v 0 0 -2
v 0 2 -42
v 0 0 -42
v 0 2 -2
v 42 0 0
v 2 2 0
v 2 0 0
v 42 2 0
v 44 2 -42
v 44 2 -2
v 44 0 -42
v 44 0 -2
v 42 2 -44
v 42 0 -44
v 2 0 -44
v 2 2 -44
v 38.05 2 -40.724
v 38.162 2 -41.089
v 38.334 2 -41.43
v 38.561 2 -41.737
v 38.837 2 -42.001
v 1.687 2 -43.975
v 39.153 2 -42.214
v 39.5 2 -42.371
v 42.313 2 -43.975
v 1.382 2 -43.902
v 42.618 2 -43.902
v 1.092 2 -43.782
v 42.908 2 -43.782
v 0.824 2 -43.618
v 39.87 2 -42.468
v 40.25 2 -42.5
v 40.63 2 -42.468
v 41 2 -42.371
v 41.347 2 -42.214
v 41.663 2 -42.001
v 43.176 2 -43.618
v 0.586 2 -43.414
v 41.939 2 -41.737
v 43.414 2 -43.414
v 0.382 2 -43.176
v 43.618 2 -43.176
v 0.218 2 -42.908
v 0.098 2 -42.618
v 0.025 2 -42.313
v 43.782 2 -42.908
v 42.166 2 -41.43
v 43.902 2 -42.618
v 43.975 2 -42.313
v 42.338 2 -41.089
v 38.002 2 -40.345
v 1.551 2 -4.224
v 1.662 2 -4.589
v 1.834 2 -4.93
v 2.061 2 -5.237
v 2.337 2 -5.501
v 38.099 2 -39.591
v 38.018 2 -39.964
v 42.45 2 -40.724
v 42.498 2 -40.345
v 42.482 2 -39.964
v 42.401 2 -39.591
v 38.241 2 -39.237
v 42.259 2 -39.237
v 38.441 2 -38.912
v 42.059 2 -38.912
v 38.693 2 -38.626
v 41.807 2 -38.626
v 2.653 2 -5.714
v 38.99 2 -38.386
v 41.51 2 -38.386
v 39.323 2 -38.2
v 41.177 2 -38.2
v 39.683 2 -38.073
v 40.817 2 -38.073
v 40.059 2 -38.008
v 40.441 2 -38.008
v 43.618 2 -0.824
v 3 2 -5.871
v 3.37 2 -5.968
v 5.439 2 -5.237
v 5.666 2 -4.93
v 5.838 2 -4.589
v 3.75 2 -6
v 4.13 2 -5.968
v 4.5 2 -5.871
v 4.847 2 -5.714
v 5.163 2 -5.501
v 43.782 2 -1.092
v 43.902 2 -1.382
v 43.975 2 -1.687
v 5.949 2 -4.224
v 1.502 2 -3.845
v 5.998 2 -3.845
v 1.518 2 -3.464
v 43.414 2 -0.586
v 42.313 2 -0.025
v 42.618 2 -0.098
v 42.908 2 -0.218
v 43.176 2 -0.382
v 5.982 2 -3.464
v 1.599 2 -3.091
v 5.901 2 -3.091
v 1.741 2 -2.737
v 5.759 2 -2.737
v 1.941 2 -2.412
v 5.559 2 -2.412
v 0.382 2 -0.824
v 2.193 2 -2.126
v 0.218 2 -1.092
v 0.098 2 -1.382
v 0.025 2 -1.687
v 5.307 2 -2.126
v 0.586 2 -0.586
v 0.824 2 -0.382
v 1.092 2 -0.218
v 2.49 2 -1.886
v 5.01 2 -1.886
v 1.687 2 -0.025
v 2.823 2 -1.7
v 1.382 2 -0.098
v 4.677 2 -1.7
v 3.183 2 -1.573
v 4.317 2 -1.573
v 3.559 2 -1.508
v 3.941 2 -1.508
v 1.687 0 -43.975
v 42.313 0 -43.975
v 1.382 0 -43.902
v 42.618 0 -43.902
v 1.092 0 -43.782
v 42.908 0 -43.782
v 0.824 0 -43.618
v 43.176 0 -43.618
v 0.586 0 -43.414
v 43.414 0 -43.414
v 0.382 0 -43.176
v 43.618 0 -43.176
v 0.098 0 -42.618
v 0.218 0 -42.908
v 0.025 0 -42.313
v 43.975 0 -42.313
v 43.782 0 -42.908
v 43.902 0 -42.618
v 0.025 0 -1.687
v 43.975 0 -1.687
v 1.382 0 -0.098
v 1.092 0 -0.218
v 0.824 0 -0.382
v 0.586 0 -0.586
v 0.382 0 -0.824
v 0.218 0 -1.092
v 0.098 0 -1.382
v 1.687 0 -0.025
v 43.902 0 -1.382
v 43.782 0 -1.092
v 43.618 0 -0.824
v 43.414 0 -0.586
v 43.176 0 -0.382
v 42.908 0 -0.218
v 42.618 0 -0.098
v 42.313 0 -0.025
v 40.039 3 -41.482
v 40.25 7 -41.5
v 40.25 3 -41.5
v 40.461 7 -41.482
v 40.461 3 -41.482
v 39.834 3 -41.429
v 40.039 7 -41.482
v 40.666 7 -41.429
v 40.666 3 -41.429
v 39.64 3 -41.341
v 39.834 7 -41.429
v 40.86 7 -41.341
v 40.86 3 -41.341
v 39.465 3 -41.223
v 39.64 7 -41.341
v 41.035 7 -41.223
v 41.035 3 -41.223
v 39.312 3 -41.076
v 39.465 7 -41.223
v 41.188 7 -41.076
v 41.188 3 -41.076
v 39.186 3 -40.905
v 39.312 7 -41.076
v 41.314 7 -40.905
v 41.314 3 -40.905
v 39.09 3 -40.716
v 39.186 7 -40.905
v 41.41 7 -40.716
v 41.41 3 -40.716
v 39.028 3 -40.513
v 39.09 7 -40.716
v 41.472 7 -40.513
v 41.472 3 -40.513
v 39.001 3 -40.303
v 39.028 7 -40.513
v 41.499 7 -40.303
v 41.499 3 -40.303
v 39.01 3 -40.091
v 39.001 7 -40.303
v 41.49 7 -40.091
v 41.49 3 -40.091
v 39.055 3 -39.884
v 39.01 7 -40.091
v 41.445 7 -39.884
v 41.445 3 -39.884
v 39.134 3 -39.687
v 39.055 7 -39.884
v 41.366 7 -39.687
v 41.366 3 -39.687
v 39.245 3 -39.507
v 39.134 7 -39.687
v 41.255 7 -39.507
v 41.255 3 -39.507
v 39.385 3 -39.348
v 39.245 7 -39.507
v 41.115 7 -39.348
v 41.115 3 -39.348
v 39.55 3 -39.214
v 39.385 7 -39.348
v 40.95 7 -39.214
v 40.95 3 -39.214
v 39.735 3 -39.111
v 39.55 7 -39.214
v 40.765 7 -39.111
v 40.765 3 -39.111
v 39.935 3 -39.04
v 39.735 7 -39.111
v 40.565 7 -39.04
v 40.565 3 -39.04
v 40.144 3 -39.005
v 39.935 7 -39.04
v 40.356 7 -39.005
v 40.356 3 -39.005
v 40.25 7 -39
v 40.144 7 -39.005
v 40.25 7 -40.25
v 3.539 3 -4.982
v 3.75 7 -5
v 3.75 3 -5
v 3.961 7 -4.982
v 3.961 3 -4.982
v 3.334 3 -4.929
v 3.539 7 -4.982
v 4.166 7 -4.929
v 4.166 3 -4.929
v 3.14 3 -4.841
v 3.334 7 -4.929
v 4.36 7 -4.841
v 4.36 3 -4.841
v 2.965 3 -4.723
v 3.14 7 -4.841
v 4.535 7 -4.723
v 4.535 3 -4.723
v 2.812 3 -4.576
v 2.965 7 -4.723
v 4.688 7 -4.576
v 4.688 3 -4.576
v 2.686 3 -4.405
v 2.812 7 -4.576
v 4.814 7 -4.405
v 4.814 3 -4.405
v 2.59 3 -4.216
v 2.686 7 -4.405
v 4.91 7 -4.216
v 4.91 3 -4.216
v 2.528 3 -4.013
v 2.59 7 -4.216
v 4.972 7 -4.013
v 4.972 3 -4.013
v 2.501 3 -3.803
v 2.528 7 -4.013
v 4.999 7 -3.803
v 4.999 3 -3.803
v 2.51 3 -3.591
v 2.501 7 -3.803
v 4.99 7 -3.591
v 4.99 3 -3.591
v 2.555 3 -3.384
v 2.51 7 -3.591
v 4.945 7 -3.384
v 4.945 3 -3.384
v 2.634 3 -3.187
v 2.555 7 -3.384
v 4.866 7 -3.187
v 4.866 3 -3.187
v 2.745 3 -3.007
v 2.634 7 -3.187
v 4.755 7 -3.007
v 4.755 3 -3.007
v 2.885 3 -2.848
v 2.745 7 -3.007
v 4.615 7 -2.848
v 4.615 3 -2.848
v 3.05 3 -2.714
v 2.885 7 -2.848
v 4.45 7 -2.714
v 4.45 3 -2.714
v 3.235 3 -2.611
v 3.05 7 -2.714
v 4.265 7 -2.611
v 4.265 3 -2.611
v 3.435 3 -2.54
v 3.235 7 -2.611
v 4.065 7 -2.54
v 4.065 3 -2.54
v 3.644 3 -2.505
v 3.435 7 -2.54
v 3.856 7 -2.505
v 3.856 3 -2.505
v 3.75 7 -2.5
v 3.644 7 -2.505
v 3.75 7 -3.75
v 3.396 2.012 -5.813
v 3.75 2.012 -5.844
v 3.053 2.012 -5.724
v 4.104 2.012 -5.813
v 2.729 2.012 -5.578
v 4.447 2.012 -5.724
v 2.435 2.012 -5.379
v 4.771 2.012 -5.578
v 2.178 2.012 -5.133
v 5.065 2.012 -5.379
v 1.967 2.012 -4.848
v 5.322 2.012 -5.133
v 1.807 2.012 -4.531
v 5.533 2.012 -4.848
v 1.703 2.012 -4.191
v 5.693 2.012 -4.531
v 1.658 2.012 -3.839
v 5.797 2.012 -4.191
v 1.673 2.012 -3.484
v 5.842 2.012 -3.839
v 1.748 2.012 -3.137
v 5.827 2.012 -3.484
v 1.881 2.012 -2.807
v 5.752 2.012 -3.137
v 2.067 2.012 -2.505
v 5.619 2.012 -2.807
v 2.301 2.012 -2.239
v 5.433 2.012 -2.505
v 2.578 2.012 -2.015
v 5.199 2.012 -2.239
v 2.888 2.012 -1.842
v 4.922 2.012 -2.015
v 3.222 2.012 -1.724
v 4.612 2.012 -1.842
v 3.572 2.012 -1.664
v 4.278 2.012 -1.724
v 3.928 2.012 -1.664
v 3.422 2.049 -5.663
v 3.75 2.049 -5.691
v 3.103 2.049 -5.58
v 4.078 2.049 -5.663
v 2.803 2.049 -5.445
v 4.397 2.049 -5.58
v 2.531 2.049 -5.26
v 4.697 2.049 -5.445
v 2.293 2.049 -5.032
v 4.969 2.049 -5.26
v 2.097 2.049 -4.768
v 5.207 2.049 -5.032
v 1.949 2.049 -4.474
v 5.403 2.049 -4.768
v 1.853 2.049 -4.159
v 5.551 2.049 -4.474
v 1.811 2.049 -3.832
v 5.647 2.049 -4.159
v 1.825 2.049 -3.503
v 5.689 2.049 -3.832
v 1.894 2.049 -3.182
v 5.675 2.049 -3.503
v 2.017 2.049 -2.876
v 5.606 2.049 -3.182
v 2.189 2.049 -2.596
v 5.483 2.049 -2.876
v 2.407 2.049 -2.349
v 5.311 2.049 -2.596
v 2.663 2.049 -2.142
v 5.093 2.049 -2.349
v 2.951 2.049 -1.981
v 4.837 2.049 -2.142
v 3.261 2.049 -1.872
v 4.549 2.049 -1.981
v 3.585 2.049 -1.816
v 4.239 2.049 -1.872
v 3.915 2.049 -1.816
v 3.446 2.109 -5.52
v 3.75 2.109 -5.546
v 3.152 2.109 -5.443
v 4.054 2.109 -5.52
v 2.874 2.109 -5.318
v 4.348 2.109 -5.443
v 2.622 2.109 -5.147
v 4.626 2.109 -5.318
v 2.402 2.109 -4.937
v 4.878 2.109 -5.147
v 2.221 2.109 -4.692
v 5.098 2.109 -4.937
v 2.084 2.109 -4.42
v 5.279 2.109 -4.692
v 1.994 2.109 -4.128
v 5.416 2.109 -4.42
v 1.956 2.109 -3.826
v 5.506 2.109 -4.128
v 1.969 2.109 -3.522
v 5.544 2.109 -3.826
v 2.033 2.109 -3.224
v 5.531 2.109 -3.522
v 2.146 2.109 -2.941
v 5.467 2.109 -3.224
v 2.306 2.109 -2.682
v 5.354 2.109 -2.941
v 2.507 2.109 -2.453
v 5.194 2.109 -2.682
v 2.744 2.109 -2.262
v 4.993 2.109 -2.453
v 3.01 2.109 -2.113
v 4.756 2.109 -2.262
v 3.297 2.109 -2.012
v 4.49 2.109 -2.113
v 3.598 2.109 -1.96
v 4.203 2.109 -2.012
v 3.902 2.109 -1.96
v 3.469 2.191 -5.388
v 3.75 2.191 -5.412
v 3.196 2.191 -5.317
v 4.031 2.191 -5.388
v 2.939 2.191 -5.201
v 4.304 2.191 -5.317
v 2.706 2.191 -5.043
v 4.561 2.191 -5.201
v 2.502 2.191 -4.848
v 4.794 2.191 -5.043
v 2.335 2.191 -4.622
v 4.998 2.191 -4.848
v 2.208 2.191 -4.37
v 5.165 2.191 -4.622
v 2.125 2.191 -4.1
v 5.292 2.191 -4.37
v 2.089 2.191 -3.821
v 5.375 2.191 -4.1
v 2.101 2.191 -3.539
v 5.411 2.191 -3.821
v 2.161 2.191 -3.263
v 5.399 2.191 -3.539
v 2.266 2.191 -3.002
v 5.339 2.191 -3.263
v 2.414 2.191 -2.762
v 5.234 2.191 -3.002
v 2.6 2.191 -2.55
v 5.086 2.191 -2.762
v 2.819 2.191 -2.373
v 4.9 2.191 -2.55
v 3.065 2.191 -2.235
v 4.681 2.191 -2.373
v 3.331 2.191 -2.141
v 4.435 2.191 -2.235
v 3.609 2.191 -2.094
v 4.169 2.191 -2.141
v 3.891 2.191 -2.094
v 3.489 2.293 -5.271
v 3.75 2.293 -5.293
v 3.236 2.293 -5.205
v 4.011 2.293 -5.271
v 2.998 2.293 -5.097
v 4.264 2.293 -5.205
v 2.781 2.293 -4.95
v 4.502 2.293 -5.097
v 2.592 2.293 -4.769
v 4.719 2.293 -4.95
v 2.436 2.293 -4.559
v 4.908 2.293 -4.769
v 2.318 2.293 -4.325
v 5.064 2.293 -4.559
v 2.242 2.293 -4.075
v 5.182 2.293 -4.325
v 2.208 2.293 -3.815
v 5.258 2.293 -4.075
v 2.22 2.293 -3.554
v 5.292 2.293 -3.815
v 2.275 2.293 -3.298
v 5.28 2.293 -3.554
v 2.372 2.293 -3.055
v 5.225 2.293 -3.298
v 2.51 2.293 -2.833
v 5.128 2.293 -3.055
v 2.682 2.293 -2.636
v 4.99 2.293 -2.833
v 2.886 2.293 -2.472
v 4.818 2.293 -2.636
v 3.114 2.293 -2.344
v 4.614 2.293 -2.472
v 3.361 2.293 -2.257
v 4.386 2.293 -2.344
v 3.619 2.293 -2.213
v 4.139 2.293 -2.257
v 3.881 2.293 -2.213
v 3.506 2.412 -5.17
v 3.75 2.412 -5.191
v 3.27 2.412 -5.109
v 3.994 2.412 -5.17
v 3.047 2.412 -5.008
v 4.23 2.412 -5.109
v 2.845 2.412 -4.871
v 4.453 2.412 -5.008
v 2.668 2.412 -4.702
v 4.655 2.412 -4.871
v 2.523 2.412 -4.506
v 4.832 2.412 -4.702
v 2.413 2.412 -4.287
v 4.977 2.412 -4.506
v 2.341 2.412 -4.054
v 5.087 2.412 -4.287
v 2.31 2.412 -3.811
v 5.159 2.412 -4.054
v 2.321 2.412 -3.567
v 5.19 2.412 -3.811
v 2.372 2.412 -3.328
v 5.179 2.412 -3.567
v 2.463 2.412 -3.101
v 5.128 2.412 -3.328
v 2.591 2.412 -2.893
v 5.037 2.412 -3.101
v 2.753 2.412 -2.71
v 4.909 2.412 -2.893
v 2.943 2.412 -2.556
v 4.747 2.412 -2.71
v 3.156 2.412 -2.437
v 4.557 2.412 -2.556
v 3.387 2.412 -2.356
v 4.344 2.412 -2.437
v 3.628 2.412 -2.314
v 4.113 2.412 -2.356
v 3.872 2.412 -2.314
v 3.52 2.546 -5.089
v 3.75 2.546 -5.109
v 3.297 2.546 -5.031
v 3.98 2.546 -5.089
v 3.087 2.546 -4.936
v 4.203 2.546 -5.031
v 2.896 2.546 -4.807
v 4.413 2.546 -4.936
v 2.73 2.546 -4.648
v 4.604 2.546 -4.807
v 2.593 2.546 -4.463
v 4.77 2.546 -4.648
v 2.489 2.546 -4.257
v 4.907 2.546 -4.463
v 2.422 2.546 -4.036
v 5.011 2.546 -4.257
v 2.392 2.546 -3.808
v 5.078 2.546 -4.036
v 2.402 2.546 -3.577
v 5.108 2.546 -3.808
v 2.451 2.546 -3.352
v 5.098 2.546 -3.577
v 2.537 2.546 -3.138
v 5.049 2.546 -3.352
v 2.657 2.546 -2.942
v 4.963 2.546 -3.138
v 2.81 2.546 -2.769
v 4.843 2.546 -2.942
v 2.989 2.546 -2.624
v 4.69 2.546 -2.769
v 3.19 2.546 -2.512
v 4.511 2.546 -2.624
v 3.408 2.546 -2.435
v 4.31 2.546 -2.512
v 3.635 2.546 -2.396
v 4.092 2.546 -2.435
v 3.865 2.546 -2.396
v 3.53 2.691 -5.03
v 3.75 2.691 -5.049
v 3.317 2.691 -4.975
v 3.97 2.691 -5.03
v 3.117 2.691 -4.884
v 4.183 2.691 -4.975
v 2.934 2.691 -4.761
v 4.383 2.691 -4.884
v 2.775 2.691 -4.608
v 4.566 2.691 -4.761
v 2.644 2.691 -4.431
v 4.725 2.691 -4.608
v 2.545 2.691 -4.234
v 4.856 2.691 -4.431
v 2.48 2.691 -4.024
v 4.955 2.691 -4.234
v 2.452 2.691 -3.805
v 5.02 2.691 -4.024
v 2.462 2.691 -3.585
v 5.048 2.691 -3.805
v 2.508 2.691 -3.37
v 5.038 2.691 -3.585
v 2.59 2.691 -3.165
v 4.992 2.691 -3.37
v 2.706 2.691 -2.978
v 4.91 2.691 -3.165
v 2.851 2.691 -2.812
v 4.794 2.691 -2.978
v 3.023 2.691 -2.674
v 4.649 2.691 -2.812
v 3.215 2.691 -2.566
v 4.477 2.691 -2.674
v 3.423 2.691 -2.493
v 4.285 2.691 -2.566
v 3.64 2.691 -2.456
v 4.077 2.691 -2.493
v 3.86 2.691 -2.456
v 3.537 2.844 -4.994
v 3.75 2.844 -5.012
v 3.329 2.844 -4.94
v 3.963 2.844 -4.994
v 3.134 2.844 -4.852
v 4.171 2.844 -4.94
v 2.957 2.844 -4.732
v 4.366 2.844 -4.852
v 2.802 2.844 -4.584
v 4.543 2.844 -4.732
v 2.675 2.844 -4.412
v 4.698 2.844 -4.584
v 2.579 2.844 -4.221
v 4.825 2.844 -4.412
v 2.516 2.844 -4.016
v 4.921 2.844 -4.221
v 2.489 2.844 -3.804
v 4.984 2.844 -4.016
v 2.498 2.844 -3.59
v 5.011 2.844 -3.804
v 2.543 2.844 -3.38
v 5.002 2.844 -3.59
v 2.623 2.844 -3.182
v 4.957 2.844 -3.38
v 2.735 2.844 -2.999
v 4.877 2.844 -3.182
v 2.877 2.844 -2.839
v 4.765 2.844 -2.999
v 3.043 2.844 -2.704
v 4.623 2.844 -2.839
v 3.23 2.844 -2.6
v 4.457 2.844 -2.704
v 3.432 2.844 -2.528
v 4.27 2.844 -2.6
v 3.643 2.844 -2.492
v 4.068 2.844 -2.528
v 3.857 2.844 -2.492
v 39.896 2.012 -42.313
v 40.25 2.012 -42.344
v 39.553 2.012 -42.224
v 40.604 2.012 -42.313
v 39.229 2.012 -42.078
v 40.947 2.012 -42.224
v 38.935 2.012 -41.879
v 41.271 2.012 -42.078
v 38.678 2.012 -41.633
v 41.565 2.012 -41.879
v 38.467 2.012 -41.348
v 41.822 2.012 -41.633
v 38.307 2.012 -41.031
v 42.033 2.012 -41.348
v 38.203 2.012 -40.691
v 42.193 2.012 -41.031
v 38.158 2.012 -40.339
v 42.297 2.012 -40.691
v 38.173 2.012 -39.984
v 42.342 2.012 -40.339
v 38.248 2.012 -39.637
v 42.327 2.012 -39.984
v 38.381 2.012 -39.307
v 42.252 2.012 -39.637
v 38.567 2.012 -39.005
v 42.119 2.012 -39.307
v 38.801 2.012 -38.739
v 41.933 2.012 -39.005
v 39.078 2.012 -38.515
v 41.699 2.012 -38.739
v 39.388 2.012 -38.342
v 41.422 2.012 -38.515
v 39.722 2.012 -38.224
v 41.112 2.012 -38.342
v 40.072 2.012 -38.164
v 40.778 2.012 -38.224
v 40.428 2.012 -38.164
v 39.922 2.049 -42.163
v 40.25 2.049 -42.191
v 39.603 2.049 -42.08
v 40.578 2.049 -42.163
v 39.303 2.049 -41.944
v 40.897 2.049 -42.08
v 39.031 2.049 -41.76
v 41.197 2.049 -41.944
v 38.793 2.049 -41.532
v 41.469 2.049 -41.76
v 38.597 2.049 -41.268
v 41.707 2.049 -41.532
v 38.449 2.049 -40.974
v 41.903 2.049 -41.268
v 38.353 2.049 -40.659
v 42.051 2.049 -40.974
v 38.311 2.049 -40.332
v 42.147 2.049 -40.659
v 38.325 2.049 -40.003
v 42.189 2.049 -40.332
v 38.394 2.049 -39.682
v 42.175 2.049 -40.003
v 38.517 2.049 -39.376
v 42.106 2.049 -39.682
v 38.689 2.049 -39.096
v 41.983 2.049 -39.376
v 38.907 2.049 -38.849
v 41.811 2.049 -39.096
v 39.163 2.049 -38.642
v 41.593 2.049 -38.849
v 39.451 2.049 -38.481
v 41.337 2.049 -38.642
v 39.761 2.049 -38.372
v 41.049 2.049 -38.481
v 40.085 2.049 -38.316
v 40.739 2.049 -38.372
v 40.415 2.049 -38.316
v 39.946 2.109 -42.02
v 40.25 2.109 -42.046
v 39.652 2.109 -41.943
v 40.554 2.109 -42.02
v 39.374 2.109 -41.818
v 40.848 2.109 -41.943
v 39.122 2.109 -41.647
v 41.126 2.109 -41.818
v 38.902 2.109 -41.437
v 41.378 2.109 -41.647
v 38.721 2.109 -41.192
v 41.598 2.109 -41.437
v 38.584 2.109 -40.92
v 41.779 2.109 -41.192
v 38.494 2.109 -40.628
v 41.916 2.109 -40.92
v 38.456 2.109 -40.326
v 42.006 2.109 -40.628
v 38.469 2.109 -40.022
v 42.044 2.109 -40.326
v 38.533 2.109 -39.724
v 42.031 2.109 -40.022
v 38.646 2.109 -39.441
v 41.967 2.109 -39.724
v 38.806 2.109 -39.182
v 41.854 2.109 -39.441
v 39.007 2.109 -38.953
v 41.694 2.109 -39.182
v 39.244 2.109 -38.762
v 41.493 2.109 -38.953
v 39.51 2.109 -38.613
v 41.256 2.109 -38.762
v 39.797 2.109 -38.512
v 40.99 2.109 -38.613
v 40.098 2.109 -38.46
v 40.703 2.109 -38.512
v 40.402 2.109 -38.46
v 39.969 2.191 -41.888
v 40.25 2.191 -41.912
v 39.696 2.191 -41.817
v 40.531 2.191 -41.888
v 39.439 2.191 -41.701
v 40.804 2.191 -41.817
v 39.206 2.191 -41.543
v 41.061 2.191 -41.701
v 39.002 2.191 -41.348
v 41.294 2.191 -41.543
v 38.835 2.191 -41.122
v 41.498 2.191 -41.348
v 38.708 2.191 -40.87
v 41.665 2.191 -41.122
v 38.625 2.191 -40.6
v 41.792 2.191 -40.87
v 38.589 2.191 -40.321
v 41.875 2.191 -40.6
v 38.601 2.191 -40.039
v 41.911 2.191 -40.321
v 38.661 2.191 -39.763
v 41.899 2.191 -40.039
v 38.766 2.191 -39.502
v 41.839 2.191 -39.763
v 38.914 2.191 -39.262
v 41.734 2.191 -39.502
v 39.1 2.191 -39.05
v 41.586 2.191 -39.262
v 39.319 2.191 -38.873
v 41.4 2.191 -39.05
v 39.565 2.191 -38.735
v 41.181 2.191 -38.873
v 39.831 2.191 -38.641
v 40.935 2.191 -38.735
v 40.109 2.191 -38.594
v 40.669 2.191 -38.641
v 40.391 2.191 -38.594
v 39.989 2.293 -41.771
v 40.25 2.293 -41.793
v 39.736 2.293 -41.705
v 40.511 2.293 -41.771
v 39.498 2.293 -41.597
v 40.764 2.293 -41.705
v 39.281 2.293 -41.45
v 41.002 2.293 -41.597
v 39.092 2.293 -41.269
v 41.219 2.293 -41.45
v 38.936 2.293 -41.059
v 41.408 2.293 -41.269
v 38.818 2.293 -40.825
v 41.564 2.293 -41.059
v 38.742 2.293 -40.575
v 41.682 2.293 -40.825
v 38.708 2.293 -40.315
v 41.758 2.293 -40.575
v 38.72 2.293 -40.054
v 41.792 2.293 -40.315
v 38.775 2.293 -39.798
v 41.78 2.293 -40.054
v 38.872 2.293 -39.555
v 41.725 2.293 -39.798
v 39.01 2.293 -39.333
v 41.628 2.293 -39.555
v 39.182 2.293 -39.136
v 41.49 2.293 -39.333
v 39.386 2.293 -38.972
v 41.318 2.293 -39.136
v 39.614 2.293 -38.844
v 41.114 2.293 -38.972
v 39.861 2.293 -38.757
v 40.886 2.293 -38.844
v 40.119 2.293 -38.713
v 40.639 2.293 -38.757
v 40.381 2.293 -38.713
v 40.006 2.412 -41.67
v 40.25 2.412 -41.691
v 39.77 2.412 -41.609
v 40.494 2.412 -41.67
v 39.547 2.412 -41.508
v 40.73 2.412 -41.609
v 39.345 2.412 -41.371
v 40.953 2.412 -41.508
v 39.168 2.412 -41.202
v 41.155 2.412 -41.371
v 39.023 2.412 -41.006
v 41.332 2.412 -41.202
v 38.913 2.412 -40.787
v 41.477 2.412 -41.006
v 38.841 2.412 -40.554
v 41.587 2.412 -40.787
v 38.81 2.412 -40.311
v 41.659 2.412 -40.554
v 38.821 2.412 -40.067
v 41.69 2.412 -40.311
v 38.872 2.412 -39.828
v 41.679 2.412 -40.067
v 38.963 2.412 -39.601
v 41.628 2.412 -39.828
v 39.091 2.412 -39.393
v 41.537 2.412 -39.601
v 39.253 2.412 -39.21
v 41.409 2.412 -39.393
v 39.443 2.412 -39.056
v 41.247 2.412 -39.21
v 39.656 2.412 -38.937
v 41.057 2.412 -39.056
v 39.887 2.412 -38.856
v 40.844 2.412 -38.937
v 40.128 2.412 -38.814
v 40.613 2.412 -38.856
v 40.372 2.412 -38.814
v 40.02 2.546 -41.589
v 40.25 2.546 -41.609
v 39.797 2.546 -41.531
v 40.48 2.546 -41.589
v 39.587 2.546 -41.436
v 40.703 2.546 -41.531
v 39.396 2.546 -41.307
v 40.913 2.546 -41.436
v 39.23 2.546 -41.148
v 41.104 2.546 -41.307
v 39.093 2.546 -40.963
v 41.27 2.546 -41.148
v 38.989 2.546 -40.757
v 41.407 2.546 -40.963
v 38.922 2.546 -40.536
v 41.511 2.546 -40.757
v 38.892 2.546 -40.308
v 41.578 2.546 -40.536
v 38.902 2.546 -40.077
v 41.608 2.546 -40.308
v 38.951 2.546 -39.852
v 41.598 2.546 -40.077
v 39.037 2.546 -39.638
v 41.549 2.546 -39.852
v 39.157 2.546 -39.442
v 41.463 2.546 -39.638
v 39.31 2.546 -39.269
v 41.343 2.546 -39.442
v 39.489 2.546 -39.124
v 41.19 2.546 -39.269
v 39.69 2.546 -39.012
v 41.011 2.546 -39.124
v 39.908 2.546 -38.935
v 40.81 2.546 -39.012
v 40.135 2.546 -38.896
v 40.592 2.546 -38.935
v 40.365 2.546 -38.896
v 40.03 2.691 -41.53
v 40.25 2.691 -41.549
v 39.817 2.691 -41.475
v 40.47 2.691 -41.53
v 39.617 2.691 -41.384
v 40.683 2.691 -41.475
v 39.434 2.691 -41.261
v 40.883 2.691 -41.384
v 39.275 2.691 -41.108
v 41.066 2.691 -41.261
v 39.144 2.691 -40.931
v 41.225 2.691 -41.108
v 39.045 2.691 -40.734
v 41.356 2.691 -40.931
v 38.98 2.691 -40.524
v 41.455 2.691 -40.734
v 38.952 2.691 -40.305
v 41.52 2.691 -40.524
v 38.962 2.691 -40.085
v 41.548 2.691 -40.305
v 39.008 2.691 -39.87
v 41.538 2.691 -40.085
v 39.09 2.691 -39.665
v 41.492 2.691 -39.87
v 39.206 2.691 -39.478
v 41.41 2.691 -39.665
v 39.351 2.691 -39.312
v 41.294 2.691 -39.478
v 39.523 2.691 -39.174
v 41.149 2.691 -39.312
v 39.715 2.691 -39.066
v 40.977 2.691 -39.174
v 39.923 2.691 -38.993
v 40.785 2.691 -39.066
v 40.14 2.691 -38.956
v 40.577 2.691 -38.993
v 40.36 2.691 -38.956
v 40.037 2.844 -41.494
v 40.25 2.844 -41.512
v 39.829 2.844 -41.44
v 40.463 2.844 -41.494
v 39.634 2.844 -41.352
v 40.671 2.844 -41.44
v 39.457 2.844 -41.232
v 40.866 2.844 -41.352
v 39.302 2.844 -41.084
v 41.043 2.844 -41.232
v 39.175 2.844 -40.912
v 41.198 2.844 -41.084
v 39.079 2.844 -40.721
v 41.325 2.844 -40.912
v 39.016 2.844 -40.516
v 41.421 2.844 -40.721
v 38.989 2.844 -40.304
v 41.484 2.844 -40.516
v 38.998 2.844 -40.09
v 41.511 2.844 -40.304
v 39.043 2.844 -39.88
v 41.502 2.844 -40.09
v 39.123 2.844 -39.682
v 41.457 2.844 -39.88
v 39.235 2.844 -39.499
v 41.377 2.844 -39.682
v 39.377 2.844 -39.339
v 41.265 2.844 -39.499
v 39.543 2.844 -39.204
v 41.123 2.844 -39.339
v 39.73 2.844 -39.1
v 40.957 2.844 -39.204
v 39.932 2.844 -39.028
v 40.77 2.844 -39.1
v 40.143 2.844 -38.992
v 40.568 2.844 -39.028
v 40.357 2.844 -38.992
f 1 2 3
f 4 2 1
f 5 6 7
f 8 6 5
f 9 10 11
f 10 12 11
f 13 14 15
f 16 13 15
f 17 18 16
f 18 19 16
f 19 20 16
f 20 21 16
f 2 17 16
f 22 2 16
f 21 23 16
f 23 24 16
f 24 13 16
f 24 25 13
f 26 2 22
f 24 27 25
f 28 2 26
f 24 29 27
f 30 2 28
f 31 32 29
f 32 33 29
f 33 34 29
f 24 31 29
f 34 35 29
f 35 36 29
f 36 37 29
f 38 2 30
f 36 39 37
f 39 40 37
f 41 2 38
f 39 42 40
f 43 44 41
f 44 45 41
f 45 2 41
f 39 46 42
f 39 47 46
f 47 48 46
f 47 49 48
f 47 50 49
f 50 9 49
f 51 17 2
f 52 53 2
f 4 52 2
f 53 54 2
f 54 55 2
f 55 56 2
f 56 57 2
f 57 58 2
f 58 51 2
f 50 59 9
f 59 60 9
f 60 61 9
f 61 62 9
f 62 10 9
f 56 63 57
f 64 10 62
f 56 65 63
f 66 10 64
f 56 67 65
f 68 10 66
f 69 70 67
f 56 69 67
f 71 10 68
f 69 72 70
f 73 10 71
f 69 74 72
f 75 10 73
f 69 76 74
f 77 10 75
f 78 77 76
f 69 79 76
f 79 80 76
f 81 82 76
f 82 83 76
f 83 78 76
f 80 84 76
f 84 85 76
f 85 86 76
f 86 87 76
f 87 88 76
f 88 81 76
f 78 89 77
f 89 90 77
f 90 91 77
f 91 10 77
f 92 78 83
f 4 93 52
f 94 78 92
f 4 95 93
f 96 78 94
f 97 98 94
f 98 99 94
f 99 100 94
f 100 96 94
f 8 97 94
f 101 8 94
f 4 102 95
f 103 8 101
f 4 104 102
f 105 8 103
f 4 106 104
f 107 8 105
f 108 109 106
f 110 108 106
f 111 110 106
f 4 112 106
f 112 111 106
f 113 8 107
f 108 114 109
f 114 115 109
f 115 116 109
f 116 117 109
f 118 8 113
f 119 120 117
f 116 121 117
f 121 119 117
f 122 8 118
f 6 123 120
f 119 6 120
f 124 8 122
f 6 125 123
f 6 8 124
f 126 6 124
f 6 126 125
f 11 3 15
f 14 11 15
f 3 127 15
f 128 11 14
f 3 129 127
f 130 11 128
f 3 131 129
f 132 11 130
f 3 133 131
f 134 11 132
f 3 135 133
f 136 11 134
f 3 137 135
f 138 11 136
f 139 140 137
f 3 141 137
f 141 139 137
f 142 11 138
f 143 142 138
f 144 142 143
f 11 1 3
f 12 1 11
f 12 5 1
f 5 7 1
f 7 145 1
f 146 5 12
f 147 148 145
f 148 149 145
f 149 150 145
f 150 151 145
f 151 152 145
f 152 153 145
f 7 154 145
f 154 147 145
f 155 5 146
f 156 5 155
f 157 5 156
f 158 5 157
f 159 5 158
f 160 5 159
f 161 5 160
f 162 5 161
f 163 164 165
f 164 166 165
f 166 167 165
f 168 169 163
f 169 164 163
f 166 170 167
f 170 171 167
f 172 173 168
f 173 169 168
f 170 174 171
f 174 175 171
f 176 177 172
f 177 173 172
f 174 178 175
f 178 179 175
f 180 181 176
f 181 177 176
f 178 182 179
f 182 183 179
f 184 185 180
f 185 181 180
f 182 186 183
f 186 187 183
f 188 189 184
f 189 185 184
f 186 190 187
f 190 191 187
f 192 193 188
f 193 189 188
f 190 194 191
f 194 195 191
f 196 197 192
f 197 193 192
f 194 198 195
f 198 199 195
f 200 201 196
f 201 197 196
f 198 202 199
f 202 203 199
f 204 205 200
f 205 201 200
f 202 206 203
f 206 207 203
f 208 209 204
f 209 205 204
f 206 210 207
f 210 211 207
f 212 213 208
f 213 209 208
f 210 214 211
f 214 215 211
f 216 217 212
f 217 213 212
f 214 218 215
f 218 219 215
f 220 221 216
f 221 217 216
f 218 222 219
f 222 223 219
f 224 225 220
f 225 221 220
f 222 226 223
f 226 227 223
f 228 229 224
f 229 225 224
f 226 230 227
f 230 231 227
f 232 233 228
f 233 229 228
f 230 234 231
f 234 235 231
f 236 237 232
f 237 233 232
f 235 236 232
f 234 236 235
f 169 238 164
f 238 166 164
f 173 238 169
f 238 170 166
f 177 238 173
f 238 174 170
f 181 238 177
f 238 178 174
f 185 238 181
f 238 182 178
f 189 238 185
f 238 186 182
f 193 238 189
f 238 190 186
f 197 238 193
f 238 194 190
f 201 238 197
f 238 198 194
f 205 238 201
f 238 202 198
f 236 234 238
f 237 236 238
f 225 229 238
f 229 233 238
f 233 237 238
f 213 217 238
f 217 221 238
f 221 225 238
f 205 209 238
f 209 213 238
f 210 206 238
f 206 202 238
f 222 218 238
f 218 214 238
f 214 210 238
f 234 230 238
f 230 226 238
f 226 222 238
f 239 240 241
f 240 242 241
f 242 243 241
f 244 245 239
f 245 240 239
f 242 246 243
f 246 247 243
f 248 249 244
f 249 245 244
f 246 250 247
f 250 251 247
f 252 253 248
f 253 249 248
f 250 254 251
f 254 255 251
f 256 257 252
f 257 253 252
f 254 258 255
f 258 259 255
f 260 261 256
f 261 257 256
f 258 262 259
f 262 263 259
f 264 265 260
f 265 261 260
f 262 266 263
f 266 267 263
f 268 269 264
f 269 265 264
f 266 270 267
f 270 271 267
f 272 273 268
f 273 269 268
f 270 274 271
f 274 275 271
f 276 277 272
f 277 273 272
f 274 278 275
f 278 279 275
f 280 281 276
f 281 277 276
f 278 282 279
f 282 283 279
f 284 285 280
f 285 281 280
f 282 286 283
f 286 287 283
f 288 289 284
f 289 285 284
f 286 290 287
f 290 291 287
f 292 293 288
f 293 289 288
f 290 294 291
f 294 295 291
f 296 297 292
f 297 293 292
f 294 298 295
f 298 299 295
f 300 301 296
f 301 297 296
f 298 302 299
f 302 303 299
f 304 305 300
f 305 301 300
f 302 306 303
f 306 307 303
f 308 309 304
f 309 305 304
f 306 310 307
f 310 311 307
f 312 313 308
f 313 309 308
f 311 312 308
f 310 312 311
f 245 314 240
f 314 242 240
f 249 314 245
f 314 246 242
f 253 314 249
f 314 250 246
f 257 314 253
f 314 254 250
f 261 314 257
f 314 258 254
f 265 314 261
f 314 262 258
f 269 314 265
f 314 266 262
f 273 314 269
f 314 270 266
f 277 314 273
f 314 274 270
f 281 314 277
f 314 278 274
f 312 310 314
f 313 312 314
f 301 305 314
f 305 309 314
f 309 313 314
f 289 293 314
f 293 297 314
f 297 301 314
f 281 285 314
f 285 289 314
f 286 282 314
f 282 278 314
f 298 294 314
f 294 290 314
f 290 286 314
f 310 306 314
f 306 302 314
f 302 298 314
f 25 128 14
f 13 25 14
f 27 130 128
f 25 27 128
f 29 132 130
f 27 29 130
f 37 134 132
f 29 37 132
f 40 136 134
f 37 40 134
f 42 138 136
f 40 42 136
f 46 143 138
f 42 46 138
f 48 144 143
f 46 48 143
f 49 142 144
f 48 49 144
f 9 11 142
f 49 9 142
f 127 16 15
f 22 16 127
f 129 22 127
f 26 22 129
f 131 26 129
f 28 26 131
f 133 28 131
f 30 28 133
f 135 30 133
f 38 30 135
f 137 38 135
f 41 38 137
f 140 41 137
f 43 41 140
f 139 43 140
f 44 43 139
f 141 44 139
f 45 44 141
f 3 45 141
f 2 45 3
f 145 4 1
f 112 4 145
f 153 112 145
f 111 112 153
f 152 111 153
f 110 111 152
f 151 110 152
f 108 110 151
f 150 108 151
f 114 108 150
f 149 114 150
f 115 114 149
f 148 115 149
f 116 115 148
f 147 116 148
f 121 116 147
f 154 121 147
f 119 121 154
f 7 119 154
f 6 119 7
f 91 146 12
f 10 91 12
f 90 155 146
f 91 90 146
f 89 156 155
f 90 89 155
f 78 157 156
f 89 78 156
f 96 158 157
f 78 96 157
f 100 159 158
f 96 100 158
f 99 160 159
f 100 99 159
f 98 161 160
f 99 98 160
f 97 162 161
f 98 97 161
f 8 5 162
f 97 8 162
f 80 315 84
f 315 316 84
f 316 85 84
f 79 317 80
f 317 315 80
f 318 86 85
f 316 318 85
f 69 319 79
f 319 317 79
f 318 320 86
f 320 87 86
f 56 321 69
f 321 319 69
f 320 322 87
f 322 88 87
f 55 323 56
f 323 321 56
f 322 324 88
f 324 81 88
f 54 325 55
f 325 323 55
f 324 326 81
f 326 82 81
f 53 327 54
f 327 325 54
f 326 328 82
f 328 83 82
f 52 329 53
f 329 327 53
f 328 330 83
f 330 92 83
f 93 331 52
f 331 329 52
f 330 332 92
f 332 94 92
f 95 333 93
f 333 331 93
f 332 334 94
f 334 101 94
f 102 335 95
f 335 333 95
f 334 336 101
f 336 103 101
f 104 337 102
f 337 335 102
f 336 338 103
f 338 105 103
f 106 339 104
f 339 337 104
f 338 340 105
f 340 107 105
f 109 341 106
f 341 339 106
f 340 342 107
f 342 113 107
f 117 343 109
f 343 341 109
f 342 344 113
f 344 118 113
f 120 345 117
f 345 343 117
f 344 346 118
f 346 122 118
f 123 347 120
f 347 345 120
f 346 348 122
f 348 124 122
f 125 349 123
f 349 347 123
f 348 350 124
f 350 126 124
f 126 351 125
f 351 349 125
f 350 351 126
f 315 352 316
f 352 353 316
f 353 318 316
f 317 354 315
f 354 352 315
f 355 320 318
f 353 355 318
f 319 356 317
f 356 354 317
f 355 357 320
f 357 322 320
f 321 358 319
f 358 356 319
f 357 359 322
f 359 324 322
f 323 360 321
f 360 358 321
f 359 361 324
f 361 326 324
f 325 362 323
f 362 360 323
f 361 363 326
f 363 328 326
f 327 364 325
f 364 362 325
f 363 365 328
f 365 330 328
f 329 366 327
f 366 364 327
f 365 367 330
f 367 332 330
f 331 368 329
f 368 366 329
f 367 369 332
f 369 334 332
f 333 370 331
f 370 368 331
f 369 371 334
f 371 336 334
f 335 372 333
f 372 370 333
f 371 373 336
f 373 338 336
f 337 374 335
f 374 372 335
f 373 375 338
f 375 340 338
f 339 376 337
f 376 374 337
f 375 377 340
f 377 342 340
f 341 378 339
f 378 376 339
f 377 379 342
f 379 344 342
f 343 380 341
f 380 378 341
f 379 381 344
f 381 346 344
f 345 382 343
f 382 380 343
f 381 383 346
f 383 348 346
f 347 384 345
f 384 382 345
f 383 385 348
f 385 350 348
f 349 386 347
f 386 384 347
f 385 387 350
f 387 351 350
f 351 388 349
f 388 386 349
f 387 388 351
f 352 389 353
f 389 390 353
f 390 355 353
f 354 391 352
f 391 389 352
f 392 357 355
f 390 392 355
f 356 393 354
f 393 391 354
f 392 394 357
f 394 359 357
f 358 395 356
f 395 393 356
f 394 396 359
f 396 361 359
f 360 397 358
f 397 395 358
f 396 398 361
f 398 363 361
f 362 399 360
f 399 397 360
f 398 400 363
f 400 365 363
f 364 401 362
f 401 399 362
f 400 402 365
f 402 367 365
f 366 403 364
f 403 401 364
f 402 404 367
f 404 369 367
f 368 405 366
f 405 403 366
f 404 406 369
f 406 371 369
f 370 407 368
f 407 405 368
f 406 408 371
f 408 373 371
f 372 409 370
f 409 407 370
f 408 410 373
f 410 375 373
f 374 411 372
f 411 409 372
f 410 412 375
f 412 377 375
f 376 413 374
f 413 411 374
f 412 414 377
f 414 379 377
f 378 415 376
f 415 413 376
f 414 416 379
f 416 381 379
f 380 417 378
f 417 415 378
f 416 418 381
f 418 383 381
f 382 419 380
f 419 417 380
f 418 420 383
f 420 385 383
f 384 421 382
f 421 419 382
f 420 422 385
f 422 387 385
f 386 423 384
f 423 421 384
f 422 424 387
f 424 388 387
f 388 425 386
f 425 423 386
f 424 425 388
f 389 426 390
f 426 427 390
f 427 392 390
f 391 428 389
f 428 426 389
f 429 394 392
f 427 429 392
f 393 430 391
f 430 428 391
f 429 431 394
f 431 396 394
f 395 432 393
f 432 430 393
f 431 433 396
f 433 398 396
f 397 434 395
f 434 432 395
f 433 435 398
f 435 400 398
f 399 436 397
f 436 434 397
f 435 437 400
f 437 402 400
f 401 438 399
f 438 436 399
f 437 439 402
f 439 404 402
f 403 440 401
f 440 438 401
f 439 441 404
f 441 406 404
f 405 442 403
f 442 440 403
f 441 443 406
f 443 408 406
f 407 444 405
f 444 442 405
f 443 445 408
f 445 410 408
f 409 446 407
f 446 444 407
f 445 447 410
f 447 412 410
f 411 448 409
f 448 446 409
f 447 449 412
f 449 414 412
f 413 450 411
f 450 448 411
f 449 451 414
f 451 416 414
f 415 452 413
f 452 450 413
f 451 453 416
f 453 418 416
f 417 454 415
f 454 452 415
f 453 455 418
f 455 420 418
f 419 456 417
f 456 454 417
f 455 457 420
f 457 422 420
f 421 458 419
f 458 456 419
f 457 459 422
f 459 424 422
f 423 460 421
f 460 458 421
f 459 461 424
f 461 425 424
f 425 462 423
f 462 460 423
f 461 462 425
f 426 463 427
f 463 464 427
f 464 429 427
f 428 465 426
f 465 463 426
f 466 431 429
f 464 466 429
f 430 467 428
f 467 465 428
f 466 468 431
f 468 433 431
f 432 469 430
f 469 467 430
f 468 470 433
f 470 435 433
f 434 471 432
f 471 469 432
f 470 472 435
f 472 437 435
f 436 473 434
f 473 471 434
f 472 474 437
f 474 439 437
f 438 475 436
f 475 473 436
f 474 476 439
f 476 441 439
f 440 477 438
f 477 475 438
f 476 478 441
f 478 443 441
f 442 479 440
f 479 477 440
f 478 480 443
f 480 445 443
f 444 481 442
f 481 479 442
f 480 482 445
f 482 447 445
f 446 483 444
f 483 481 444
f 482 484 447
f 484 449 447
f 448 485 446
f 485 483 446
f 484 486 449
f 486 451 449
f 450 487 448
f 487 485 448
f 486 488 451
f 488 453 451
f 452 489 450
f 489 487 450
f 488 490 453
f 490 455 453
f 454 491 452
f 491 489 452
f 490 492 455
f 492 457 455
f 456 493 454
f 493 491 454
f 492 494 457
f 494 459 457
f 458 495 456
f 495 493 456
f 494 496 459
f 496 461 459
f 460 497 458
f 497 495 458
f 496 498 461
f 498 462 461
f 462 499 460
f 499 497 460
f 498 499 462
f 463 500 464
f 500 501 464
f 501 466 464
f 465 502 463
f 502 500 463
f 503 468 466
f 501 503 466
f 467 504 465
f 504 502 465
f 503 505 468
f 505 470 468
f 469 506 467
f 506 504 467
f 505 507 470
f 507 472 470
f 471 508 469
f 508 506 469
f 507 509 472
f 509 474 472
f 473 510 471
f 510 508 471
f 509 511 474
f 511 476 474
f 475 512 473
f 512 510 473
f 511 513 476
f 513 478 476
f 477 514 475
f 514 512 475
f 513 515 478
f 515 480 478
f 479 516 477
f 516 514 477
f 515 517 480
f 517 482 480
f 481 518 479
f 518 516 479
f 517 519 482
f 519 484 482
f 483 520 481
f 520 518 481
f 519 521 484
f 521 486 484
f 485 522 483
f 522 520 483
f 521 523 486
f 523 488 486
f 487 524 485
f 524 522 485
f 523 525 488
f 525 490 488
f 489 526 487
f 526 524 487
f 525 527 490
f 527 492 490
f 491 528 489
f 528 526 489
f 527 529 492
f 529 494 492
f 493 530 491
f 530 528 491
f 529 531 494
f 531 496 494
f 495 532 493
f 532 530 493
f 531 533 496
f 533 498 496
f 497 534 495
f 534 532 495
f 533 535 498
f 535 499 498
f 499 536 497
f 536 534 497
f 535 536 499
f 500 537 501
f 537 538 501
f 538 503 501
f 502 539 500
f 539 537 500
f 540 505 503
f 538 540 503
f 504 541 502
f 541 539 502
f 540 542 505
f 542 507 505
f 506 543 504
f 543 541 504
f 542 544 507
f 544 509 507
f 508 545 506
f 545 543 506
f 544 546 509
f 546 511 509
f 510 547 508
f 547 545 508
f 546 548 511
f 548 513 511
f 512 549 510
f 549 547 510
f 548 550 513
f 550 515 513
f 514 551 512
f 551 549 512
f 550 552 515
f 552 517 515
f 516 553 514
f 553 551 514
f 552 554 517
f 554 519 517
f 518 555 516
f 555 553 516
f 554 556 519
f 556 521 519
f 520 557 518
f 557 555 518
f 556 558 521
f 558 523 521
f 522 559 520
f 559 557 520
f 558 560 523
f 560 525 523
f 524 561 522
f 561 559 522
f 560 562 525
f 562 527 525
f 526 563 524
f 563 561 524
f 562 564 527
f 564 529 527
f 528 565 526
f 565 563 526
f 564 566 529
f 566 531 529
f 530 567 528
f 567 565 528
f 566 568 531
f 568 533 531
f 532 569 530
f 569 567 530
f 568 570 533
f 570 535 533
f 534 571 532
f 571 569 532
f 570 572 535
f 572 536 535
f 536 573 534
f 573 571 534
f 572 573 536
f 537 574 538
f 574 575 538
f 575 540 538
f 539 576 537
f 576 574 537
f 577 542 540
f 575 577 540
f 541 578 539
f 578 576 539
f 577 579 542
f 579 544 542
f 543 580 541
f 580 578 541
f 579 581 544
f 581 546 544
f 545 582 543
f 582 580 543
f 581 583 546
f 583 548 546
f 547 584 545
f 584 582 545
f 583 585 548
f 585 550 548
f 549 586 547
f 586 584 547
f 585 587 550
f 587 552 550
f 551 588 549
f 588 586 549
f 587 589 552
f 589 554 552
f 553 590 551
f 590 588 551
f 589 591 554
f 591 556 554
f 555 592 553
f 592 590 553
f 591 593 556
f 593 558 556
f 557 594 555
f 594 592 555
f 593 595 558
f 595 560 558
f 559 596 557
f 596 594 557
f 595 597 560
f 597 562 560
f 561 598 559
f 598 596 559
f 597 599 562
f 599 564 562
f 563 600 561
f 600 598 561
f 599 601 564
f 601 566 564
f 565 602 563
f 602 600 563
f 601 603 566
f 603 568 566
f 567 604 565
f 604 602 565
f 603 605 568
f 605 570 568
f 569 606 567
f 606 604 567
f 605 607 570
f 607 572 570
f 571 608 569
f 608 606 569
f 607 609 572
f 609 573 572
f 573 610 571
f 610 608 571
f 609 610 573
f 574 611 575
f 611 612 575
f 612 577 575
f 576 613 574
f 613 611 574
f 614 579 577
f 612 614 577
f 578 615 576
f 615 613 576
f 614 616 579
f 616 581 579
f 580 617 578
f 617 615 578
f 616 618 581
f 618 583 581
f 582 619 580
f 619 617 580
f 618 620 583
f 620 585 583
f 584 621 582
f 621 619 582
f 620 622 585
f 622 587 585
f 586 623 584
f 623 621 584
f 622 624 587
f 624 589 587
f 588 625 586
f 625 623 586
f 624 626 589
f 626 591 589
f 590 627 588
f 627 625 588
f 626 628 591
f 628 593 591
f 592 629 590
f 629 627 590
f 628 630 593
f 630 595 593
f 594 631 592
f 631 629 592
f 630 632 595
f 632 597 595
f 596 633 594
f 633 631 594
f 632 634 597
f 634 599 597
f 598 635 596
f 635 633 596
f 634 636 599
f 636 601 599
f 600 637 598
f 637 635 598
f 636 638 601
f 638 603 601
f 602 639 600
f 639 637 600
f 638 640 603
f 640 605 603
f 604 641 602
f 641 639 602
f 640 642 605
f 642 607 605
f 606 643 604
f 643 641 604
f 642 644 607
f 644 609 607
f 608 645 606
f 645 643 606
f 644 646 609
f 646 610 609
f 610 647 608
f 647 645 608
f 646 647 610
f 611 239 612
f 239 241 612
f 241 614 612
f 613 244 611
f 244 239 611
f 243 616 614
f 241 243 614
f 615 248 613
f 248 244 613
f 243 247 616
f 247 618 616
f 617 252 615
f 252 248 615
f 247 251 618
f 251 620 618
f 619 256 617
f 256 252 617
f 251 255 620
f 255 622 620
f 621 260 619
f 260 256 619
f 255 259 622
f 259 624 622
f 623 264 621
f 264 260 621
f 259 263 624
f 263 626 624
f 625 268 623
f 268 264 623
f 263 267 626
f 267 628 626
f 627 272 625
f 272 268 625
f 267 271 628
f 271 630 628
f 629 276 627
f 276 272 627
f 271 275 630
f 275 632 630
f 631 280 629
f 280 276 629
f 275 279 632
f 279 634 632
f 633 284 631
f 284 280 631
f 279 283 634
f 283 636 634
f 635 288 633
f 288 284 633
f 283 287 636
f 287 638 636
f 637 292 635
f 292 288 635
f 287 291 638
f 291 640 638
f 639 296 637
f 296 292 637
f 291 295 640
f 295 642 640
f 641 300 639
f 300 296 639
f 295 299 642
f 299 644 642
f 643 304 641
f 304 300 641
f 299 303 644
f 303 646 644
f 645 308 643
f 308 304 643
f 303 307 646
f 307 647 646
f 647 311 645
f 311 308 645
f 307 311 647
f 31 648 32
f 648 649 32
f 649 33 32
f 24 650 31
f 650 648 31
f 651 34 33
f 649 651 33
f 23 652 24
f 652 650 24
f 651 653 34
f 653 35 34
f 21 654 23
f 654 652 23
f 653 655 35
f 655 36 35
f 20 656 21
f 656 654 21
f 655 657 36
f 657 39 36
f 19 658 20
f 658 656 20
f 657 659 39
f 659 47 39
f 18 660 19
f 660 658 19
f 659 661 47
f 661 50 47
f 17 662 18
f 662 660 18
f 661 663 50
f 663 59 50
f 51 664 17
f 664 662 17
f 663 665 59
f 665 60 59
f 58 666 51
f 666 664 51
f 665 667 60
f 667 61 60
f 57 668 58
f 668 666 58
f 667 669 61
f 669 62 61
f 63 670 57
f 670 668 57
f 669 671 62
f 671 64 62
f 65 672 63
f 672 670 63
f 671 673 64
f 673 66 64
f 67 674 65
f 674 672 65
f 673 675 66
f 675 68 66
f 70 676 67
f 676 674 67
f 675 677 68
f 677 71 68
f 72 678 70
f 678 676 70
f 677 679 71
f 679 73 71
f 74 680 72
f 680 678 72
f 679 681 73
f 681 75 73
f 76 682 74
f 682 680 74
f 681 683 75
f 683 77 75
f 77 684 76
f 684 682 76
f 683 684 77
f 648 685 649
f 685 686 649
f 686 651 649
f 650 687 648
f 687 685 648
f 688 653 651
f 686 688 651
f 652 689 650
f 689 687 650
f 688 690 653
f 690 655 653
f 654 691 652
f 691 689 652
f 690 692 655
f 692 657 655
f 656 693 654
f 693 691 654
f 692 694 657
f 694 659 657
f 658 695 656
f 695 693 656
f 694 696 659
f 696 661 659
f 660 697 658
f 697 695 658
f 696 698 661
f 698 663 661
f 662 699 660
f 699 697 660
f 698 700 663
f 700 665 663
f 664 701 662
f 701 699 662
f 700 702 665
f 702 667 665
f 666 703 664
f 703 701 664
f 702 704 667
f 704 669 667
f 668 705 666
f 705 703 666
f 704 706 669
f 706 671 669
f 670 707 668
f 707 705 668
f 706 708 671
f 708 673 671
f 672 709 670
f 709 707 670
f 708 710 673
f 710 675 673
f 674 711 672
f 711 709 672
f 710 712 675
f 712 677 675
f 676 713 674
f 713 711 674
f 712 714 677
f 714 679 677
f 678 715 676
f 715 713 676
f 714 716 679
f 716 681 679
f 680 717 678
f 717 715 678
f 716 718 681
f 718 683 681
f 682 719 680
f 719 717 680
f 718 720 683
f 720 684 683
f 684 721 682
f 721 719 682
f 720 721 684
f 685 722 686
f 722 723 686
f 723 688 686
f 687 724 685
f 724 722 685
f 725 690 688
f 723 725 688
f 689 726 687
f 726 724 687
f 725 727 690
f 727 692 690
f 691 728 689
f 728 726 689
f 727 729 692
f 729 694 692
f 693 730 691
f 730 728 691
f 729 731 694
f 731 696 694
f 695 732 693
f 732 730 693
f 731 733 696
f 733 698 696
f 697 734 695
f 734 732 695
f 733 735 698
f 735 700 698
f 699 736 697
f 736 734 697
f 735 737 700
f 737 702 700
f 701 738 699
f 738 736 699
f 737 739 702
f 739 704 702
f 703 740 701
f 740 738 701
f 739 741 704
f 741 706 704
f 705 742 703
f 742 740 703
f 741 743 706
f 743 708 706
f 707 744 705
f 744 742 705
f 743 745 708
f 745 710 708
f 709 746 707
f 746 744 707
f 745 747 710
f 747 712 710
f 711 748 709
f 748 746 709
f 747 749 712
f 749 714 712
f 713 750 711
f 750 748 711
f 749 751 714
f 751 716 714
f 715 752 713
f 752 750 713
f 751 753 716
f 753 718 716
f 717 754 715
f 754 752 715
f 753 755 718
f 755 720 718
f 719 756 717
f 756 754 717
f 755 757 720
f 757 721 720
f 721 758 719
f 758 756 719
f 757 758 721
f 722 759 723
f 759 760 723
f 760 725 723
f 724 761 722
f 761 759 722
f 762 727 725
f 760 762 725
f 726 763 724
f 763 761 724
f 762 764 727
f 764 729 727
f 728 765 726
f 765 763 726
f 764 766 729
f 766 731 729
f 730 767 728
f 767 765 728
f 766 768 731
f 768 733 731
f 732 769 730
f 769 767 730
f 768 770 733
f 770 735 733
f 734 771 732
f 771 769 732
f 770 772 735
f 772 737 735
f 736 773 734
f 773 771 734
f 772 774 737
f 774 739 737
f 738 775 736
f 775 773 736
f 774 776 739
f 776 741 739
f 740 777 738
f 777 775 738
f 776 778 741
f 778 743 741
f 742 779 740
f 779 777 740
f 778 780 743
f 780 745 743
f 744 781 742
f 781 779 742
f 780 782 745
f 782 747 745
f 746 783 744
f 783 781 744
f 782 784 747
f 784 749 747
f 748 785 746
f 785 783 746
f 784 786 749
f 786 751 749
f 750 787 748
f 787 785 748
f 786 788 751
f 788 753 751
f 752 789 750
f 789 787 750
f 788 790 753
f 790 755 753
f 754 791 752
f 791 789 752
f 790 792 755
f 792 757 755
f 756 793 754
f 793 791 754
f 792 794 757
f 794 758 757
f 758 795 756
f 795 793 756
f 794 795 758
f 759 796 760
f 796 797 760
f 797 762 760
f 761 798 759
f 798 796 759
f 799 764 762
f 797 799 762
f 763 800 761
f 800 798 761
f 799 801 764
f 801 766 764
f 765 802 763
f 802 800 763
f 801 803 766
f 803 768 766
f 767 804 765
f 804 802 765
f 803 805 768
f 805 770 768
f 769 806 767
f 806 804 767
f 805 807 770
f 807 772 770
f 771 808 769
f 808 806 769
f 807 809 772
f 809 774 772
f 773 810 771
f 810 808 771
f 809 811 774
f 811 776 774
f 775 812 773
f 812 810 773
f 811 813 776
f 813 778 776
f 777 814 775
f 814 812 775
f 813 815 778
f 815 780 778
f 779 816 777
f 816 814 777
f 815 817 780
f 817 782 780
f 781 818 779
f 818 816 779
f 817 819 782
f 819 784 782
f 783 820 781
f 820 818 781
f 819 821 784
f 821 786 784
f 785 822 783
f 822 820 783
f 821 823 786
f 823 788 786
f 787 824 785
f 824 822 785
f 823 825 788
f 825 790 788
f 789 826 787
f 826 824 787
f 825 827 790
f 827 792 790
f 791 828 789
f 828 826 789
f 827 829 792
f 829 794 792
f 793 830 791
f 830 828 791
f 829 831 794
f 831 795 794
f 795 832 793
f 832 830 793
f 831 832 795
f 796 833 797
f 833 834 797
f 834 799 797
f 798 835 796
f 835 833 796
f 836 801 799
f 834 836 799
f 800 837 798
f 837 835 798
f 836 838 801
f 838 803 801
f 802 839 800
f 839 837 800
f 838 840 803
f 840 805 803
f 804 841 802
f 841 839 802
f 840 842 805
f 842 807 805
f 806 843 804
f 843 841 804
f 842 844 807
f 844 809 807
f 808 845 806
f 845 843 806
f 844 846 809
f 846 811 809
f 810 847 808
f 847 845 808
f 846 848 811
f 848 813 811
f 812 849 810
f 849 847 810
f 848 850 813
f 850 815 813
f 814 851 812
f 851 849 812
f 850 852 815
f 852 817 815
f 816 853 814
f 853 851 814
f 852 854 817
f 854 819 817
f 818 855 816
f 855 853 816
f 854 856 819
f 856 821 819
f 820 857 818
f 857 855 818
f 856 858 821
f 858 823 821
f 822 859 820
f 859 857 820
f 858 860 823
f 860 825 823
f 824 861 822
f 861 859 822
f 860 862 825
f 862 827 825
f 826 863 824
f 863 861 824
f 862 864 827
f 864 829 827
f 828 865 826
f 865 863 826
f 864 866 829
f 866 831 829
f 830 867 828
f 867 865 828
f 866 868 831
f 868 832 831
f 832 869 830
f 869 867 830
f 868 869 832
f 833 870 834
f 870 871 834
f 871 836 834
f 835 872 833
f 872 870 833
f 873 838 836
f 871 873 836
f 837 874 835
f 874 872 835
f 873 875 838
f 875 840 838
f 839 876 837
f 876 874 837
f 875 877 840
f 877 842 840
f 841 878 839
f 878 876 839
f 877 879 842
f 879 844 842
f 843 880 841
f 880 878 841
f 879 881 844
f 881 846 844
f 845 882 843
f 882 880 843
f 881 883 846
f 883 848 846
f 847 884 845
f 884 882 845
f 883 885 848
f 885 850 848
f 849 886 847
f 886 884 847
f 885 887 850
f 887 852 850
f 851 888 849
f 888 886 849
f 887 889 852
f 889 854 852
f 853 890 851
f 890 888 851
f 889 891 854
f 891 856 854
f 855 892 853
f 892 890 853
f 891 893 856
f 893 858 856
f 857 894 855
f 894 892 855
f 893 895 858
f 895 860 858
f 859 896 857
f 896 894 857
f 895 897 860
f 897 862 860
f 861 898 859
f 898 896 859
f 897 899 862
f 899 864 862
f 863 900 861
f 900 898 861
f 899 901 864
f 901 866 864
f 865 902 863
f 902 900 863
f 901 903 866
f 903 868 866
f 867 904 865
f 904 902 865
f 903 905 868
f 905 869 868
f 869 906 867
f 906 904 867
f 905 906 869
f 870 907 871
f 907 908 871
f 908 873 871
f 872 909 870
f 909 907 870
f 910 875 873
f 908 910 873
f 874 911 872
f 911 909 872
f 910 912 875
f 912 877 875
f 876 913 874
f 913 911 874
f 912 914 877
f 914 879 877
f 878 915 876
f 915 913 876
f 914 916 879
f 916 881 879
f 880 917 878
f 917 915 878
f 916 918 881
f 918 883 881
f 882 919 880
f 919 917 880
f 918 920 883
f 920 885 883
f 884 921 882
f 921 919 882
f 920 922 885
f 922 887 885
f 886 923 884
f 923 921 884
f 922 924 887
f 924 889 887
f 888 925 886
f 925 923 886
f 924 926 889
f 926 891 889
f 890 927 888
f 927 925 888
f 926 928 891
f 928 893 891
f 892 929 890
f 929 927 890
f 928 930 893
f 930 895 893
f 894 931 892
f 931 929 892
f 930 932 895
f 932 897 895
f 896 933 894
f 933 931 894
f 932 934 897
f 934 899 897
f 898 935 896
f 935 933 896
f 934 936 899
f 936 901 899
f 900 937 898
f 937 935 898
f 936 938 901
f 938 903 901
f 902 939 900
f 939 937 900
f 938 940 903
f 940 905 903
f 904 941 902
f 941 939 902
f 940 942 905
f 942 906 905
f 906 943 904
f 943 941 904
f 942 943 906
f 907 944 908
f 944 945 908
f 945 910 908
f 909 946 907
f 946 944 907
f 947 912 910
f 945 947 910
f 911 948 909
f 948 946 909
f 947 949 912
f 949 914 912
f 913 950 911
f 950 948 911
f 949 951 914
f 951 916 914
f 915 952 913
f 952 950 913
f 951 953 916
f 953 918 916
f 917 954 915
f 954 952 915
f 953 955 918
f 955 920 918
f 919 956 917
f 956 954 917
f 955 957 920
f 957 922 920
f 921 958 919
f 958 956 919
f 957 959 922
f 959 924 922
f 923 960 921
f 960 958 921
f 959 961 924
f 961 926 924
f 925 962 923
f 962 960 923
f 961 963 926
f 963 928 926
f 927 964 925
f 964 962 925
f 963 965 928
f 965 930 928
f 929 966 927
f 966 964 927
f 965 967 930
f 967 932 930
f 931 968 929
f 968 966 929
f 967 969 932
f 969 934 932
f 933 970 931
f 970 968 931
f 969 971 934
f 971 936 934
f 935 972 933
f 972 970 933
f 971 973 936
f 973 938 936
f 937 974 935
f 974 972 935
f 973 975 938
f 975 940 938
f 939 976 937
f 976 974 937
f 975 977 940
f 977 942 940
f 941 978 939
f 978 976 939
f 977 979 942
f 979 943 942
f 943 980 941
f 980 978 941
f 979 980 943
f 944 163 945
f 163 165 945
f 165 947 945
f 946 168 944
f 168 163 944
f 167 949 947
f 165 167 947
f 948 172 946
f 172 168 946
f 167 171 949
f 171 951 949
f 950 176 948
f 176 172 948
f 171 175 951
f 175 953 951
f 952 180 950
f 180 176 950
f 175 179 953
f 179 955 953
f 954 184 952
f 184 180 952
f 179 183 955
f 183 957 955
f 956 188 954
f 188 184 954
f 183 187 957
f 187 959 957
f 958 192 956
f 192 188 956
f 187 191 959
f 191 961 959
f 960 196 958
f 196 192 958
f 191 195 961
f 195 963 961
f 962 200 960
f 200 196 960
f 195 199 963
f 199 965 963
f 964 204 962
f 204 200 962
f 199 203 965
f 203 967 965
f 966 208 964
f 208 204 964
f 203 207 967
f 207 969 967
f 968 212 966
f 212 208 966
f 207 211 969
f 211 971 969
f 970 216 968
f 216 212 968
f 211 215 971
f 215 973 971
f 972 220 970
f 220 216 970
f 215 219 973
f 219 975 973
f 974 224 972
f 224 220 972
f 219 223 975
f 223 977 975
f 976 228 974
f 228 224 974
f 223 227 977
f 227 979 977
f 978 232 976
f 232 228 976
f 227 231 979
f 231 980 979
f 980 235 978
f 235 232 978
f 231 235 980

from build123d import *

# Parameters (mm, degrees)
SKETCH1_W           = 44
SKETCH1_H           = 44
BOSS_EXTRUDE1_DEPTH = 2
SKETCH2_R           = 1.25
BOSS_EXTRUDE4_DEPTH = 5
FILLET4_R           = 2
FILLET5_R           = 1


with BuildPart() as part:
    # Sketch1 → Boss-Extrude1 (new body)
    with BuildSketch(Plane(origin=(0, 0, 0), x_dir=(1, 0, 0), z_dir=(0, 1, 0))):
        with Locations((22, 22)):
            Rectangle(SKETCH1_W, SKETCH1_H)
    extrude(amount=BOSS_EXTRUDE1_DEPTH)

    # Sketch2 → Boss-Extrude4 (add)
    with BuildSketch(Plane(origin=(0, 2, 0), x_dir=(1, 0, 0), z_dir=(0, 1, 0))):
        with Locations(Location((3.75, 3.75, 0), (0, 0, 90))):
            Circle(SKETCH2_R)
        with Locations(Location((40.25, 40.25, 0), (0, 0, 90))):
            Circle(SKETCH2_R)
    extrude(amount=BOSS_EXTRUDE4_DEPTH)

    # Fillet4
    fillet4_edges = [part.edges().sort_by_distance(p)[0] for p in [
        (0, 1, -44),
        (44, 1, -44),
        (44, 1, 0),
        (0, 1, 0),
    ]]
    fillet(fillet4_edges, radius=FILLET4_R)

    # Fillet5
    fillet5_edges = [part.edges().sort_by_distance(p)[0] for p in [
        (40.25, 2, -39),
        (3.75, 2, -2.5),
    ]]
    fillet(fillet5_edges, radius=FILLET5_R)


solid = part.part
